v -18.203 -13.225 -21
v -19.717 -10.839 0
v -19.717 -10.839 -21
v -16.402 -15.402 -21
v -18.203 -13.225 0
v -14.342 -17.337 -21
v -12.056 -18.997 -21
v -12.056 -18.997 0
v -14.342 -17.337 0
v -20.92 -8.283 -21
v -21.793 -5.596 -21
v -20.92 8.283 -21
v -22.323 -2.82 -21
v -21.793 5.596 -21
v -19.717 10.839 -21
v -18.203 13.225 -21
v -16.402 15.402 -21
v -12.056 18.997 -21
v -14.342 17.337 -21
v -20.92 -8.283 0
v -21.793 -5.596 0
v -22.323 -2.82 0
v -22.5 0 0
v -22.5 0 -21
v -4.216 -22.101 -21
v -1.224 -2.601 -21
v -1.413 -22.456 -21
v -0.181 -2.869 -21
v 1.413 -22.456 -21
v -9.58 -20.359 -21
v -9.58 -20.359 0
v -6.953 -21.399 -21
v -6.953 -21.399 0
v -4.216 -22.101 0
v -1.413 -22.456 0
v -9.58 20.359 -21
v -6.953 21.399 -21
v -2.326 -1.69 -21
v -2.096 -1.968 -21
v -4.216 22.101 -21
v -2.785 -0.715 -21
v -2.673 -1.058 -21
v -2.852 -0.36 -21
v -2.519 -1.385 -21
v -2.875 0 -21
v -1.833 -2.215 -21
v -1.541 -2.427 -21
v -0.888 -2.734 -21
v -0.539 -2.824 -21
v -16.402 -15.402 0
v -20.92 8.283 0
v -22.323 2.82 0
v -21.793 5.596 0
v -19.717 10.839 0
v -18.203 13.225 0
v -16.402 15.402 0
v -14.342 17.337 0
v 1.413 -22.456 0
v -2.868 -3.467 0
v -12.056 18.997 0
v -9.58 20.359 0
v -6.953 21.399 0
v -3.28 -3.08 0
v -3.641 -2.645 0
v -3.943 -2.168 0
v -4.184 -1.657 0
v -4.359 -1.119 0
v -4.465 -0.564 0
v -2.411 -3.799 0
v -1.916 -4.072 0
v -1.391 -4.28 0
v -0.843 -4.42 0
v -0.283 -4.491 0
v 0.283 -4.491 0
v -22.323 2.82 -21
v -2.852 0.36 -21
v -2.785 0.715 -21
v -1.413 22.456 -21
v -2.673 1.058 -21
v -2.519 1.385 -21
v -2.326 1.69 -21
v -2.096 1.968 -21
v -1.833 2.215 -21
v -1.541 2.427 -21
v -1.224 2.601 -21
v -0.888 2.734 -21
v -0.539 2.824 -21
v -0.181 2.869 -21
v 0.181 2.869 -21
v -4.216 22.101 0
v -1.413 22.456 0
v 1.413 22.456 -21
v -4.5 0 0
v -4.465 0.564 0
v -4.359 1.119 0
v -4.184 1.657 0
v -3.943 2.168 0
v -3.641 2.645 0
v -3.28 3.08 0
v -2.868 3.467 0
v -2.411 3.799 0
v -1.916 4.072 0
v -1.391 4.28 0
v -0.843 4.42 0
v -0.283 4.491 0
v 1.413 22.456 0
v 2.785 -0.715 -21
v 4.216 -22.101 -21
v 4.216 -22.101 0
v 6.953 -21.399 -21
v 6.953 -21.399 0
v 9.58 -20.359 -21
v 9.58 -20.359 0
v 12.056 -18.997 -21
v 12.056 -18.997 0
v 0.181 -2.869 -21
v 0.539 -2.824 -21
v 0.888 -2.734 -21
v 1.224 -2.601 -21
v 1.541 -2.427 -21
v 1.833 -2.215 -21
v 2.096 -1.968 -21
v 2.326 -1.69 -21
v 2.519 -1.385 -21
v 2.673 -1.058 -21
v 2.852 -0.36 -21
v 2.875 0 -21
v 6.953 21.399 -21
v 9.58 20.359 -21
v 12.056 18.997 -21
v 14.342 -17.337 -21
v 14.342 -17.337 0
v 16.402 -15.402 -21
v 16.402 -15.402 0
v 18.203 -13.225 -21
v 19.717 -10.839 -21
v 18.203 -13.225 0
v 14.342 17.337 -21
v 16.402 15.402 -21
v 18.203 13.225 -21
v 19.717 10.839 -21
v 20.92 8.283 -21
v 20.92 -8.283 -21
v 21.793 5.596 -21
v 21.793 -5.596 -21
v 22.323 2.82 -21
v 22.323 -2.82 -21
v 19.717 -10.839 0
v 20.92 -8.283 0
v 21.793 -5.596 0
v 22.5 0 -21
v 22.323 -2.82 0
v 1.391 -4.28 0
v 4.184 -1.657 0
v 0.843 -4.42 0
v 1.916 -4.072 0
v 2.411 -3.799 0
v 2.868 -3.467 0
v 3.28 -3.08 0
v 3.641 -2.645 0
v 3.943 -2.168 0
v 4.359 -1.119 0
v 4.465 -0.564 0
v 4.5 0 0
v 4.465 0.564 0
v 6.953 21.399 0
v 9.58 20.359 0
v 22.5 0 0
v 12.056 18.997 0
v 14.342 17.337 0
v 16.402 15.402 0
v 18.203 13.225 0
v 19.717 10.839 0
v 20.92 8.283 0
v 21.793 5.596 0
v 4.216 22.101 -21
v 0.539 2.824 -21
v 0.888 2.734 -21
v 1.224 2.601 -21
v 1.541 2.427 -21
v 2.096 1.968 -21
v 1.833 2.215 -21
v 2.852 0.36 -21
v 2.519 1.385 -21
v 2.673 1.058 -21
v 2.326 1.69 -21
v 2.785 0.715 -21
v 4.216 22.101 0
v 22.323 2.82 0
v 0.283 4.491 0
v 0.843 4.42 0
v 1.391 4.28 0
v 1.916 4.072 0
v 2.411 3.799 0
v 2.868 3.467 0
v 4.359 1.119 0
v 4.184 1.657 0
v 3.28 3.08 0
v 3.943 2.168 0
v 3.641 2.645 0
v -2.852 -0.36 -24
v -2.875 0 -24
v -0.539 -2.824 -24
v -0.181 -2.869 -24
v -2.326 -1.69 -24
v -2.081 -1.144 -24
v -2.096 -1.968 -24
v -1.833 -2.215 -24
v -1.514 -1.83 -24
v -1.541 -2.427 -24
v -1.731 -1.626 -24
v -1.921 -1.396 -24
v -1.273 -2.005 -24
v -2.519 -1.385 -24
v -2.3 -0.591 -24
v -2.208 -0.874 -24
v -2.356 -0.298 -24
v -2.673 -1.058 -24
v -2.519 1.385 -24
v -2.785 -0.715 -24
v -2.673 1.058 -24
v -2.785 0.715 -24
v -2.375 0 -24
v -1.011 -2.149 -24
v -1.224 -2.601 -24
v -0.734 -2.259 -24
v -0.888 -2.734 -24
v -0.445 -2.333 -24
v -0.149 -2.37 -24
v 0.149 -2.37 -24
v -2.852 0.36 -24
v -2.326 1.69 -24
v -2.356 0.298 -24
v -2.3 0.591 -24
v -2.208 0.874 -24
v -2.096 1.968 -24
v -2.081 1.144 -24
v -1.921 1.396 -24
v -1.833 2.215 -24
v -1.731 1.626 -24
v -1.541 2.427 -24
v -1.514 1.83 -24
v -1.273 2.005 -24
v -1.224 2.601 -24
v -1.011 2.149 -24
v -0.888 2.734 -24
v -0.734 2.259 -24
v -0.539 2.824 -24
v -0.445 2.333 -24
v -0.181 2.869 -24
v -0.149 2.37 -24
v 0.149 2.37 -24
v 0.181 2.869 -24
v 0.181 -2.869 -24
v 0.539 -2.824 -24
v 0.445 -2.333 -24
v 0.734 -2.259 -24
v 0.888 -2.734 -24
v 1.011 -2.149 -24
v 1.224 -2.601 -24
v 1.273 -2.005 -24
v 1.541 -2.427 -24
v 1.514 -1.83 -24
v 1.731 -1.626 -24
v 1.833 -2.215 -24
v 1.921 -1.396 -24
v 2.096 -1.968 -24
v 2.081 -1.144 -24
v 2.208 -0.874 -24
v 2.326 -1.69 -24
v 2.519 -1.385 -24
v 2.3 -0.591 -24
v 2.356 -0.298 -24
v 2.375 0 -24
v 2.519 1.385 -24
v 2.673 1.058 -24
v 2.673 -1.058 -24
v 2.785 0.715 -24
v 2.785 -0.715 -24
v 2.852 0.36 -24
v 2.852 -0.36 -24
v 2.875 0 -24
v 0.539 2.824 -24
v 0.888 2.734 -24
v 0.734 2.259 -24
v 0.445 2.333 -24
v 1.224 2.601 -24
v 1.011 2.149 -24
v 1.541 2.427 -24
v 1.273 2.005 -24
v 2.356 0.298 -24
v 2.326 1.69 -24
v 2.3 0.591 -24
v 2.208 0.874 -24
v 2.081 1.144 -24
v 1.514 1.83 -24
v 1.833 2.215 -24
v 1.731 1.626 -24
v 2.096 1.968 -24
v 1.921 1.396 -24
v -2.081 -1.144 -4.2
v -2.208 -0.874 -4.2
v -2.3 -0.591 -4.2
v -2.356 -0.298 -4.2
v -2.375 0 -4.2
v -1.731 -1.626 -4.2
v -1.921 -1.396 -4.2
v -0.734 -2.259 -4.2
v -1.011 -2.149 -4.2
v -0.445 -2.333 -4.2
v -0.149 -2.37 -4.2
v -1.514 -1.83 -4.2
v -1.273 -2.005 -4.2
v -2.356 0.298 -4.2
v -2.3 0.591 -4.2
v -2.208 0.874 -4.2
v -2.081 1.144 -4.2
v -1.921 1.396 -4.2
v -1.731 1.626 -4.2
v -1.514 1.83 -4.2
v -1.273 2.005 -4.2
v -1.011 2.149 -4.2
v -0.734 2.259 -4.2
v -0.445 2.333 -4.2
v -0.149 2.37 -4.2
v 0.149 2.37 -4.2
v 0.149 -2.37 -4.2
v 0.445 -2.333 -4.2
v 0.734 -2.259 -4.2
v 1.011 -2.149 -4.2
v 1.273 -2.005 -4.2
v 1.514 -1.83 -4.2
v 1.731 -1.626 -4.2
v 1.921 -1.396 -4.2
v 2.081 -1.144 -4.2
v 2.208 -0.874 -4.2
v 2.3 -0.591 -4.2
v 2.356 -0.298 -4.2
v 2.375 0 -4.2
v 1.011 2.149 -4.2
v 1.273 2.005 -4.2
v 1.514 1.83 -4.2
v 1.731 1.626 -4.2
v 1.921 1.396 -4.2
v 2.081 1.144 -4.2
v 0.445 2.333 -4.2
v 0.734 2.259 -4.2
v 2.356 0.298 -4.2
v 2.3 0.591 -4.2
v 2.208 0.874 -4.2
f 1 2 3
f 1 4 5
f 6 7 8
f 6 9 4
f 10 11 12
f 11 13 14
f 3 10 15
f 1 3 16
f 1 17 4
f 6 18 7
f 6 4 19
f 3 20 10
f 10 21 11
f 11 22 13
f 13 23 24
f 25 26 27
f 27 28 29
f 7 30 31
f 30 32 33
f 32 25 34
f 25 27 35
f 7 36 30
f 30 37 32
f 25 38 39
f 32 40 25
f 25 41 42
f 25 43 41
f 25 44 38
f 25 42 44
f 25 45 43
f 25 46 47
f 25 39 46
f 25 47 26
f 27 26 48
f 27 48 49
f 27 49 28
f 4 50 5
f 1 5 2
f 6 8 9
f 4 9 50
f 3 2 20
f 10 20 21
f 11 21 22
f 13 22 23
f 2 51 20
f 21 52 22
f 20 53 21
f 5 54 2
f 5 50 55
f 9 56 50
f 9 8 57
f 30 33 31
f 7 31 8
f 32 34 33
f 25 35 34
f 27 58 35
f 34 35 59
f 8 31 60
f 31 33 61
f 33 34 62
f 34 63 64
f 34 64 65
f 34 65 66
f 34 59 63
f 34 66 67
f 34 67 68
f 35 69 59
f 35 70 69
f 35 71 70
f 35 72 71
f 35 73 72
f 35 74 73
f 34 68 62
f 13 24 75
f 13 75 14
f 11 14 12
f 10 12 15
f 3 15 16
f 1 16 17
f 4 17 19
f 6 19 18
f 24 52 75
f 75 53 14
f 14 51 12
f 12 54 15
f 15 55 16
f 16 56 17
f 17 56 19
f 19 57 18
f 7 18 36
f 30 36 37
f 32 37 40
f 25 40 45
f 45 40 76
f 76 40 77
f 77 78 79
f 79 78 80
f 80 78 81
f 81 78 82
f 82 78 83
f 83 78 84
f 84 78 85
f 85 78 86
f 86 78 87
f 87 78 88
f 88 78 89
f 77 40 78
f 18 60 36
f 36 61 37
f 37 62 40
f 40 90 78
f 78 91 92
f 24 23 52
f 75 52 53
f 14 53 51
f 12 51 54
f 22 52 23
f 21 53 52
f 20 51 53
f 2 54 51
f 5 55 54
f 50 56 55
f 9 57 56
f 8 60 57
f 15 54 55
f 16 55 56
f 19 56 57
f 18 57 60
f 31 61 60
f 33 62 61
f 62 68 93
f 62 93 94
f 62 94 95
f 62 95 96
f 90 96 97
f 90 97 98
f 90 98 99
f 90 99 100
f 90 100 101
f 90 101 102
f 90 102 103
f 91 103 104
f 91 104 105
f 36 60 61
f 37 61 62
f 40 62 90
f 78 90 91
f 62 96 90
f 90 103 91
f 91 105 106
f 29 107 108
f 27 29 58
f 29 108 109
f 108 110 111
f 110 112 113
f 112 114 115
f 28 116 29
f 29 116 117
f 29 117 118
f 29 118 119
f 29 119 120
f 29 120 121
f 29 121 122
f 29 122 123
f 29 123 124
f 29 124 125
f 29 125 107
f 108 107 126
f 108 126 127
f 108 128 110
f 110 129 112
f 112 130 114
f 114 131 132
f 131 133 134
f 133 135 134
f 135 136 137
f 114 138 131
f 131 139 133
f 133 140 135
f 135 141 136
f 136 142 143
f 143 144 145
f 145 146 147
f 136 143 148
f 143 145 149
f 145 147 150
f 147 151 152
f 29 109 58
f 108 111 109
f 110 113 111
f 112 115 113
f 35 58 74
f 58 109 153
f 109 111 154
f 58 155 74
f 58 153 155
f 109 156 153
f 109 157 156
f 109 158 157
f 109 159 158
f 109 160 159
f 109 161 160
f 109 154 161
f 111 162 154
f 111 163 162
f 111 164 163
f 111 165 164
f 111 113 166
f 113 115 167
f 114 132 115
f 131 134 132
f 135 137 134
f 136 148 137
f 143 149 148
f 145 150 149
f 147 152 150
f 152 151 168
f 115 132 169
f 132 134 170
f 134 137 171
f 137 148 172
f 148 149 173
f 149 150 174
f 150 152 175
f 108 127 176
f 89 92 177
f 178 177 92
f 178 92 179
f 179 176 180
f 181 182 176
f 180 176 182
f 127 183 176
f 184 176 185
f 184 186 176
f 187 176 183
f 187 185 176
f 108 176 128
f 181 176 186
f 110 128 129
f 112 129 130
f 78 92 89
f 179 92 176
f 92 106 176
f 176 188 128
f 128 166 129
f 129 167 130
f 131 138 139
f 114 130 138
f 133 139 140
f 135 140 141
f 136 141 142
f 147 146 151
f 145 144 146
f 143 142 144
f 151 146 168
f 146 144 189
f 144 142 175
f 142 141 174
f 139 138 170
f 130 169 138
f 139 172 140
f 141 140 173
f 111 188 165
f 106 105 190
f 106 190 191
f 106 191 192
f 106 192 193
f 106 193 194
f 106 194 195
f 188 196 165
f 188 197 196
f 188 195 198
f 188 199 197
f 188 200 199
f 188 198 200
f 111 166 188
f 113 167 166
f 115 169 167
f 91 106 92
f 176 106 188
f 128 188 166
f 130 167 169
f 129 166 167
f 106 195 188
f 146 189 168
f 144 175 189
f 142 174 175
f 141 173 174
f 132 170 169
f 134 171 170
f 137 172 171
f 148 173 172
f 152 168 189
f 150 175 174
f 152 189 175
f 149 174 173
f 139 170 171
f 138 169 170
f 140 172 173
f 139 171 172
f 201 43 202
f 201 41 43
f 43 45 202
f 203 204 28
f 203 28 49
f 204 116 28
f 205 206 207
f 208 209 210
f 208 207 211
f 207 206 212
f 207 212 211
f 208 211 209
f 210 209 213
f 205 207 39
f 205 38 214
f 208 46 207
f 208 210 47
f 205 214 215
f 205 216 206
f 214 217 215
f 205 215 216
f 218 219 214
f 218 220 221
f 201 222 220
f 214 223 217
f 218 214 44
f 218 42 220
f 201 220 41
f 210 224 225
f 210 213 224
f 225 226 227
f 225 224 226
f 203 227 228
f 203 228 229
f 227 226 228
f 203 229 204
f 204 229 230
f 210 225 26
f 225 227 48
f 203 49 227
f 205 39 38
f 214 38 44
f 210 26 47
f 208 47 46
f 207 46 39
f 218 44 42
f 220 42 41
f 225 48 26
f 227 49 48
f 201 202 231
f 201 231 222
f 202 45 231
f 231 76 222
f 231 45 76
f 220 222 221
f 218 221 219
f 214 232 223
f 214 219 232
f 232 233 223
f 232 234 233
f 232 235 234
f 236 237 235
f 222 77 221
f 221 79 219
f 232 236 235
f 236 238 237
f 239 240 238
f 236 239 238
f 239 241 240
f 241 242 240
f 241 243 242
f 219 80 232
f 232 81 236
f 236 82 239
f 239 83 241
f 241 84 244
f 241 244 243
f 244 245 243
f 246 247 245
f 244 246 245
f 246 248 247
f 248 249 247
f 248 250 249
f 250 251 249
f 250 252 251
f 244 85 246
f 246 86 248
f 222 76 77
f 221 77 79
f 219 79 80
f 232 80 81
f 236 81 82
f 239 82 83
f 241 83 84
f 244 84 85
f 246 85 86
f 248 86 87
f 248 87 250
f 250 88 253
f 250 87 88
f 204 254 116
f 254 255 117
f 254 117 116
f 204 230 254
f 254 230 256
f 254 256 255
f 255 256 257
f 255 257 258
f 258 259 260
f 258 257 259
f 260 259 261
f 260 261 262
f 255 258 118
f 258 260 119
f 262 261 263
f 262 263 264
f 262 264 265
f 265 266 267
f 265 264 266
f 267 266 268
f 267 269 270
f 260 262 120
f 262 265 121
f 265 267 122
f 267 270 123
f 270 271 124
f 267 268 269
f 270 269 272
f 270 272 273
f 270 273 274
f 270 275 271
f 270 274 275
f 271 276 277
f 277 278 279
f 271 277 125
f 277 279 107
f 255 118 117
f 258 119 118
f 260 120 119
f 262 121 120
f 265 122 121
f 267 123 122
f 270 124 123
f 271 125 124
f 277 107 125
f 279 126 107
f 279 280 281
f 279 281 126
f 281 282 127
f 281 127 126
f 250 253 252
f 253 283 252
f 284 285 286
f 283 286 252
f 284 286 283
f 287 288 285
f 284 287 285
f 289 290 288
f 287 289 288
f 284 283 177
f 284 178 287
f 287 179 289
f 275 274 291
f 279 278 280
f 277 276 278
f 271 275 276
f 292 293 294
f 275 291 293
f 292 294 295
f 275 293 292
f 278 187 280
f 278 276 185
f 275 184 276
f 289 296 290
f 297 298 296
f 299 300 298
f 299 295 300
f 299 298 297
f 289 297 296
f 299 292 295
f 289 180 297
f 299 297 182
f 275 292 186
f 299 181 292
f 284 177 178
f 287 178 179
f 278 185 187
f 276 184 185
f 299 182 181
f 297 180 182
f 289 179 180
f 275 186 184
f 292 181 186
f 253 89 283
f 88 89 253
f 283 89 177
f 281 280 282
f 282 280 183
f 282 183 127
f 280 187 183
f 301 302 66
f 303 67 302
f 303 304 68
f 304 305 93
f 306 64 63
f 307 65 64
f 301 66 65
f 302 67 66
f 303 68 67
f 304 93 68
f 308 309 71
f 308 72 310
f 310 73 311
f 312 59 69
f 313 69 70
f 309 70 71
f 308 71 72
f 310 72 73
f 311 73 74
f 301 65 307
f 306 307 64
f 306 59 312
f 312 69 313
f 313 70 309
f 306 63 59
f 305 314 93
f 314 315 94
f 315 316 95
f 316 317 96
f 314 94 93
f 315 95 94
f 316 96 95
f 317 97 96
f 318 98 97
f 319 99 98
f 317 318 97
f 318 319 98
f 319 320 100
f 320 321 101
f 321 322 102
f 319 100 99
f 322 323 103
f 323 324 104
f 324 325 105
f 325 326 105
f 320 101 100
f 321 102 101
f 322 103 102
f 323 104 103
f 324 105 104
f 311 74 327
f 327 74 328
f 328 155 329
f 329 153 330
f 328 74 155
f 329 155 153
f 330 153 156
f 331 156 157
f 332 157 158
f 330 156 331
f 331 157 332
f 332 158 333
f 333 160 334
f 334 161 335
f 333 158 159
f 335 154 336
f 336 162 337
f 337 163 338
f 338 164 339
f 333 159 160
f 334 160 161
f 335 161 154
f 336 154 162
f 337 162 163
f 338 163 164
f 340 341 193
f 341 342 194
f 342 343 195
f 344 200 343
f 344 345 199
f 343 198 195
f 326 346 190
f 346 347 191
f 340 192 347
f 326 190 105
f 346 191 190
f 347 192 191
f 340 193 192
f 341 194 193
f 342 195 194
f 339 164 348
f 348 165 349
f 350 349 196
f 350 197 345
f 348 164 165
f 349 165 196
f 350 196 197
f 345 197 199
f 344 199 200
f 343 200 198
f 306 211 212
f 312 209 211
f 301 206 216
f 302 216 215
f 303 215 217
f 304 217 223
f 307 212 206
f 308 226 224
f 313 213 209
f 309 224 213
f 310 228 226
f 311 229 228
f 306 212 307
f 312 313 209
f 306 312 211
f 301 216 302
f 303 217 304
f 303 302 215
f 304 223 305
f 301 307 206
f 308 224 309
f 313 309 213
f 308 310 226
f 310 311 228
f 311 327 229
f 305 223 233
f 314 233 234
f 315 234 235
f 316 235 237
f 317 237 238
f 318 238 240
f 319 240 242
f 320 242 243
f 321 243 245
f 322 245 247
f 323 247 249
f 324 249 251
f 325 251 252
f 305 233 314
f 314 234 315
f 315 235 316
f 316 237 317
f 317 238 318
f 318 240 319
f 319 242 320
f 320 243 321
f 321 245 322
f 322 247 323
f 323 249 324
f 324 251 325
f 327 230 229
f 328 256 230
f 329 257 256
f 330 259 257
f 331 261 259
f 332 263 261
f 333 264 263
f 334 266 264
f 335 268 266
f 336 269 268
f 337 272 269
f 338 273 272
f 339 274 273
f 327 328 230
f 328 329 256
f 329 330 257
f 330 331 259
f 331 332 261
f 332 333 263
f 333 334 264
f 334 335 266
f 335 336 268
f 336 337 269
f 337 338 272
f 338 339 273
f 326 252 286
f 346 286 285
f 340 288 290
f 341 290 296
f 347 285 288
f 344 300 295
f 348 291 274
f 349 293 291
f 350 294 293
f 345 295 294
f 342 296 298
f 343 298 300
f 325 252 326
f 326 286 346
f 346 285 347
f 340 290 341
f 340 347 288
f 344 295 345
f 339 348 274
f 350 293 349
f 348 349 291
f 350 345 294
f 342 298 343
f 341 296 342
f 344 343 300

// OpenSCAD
$fn = 50;

difference() {
	union() {
		translate(v = [0, 0, -21.0]) {
			cylinder(h = 21, r = 22.5);
		}
		#translate(v = [0, 0, -24.0]) {
			cylinder(h = 24, r = 2.875);
		}
	}
	union() {
		translate(v = [0, 0, 0]) {
			rotate(a = [0, 0, 0]) {
				difference() {
					union() {
						translate(v = [0, 0, -24.0]) {
							cylinder(h = 24, r = 2.25);
						}
						translate(v = [0, 0, -4.2]) {
							cylinder(h = 4.2, r1 = 2.375, r2 = 4.5);
						}
						translate(v = [0, 0, -24.0]) {
							cylinder(h = 24, r = 2.375);
						}
						translate(v = [0, 0, -24.0]) {
							cylinder(h = 24, r = 2.25);
						}
					}
					union();
				}
			}
		}
	}
}
